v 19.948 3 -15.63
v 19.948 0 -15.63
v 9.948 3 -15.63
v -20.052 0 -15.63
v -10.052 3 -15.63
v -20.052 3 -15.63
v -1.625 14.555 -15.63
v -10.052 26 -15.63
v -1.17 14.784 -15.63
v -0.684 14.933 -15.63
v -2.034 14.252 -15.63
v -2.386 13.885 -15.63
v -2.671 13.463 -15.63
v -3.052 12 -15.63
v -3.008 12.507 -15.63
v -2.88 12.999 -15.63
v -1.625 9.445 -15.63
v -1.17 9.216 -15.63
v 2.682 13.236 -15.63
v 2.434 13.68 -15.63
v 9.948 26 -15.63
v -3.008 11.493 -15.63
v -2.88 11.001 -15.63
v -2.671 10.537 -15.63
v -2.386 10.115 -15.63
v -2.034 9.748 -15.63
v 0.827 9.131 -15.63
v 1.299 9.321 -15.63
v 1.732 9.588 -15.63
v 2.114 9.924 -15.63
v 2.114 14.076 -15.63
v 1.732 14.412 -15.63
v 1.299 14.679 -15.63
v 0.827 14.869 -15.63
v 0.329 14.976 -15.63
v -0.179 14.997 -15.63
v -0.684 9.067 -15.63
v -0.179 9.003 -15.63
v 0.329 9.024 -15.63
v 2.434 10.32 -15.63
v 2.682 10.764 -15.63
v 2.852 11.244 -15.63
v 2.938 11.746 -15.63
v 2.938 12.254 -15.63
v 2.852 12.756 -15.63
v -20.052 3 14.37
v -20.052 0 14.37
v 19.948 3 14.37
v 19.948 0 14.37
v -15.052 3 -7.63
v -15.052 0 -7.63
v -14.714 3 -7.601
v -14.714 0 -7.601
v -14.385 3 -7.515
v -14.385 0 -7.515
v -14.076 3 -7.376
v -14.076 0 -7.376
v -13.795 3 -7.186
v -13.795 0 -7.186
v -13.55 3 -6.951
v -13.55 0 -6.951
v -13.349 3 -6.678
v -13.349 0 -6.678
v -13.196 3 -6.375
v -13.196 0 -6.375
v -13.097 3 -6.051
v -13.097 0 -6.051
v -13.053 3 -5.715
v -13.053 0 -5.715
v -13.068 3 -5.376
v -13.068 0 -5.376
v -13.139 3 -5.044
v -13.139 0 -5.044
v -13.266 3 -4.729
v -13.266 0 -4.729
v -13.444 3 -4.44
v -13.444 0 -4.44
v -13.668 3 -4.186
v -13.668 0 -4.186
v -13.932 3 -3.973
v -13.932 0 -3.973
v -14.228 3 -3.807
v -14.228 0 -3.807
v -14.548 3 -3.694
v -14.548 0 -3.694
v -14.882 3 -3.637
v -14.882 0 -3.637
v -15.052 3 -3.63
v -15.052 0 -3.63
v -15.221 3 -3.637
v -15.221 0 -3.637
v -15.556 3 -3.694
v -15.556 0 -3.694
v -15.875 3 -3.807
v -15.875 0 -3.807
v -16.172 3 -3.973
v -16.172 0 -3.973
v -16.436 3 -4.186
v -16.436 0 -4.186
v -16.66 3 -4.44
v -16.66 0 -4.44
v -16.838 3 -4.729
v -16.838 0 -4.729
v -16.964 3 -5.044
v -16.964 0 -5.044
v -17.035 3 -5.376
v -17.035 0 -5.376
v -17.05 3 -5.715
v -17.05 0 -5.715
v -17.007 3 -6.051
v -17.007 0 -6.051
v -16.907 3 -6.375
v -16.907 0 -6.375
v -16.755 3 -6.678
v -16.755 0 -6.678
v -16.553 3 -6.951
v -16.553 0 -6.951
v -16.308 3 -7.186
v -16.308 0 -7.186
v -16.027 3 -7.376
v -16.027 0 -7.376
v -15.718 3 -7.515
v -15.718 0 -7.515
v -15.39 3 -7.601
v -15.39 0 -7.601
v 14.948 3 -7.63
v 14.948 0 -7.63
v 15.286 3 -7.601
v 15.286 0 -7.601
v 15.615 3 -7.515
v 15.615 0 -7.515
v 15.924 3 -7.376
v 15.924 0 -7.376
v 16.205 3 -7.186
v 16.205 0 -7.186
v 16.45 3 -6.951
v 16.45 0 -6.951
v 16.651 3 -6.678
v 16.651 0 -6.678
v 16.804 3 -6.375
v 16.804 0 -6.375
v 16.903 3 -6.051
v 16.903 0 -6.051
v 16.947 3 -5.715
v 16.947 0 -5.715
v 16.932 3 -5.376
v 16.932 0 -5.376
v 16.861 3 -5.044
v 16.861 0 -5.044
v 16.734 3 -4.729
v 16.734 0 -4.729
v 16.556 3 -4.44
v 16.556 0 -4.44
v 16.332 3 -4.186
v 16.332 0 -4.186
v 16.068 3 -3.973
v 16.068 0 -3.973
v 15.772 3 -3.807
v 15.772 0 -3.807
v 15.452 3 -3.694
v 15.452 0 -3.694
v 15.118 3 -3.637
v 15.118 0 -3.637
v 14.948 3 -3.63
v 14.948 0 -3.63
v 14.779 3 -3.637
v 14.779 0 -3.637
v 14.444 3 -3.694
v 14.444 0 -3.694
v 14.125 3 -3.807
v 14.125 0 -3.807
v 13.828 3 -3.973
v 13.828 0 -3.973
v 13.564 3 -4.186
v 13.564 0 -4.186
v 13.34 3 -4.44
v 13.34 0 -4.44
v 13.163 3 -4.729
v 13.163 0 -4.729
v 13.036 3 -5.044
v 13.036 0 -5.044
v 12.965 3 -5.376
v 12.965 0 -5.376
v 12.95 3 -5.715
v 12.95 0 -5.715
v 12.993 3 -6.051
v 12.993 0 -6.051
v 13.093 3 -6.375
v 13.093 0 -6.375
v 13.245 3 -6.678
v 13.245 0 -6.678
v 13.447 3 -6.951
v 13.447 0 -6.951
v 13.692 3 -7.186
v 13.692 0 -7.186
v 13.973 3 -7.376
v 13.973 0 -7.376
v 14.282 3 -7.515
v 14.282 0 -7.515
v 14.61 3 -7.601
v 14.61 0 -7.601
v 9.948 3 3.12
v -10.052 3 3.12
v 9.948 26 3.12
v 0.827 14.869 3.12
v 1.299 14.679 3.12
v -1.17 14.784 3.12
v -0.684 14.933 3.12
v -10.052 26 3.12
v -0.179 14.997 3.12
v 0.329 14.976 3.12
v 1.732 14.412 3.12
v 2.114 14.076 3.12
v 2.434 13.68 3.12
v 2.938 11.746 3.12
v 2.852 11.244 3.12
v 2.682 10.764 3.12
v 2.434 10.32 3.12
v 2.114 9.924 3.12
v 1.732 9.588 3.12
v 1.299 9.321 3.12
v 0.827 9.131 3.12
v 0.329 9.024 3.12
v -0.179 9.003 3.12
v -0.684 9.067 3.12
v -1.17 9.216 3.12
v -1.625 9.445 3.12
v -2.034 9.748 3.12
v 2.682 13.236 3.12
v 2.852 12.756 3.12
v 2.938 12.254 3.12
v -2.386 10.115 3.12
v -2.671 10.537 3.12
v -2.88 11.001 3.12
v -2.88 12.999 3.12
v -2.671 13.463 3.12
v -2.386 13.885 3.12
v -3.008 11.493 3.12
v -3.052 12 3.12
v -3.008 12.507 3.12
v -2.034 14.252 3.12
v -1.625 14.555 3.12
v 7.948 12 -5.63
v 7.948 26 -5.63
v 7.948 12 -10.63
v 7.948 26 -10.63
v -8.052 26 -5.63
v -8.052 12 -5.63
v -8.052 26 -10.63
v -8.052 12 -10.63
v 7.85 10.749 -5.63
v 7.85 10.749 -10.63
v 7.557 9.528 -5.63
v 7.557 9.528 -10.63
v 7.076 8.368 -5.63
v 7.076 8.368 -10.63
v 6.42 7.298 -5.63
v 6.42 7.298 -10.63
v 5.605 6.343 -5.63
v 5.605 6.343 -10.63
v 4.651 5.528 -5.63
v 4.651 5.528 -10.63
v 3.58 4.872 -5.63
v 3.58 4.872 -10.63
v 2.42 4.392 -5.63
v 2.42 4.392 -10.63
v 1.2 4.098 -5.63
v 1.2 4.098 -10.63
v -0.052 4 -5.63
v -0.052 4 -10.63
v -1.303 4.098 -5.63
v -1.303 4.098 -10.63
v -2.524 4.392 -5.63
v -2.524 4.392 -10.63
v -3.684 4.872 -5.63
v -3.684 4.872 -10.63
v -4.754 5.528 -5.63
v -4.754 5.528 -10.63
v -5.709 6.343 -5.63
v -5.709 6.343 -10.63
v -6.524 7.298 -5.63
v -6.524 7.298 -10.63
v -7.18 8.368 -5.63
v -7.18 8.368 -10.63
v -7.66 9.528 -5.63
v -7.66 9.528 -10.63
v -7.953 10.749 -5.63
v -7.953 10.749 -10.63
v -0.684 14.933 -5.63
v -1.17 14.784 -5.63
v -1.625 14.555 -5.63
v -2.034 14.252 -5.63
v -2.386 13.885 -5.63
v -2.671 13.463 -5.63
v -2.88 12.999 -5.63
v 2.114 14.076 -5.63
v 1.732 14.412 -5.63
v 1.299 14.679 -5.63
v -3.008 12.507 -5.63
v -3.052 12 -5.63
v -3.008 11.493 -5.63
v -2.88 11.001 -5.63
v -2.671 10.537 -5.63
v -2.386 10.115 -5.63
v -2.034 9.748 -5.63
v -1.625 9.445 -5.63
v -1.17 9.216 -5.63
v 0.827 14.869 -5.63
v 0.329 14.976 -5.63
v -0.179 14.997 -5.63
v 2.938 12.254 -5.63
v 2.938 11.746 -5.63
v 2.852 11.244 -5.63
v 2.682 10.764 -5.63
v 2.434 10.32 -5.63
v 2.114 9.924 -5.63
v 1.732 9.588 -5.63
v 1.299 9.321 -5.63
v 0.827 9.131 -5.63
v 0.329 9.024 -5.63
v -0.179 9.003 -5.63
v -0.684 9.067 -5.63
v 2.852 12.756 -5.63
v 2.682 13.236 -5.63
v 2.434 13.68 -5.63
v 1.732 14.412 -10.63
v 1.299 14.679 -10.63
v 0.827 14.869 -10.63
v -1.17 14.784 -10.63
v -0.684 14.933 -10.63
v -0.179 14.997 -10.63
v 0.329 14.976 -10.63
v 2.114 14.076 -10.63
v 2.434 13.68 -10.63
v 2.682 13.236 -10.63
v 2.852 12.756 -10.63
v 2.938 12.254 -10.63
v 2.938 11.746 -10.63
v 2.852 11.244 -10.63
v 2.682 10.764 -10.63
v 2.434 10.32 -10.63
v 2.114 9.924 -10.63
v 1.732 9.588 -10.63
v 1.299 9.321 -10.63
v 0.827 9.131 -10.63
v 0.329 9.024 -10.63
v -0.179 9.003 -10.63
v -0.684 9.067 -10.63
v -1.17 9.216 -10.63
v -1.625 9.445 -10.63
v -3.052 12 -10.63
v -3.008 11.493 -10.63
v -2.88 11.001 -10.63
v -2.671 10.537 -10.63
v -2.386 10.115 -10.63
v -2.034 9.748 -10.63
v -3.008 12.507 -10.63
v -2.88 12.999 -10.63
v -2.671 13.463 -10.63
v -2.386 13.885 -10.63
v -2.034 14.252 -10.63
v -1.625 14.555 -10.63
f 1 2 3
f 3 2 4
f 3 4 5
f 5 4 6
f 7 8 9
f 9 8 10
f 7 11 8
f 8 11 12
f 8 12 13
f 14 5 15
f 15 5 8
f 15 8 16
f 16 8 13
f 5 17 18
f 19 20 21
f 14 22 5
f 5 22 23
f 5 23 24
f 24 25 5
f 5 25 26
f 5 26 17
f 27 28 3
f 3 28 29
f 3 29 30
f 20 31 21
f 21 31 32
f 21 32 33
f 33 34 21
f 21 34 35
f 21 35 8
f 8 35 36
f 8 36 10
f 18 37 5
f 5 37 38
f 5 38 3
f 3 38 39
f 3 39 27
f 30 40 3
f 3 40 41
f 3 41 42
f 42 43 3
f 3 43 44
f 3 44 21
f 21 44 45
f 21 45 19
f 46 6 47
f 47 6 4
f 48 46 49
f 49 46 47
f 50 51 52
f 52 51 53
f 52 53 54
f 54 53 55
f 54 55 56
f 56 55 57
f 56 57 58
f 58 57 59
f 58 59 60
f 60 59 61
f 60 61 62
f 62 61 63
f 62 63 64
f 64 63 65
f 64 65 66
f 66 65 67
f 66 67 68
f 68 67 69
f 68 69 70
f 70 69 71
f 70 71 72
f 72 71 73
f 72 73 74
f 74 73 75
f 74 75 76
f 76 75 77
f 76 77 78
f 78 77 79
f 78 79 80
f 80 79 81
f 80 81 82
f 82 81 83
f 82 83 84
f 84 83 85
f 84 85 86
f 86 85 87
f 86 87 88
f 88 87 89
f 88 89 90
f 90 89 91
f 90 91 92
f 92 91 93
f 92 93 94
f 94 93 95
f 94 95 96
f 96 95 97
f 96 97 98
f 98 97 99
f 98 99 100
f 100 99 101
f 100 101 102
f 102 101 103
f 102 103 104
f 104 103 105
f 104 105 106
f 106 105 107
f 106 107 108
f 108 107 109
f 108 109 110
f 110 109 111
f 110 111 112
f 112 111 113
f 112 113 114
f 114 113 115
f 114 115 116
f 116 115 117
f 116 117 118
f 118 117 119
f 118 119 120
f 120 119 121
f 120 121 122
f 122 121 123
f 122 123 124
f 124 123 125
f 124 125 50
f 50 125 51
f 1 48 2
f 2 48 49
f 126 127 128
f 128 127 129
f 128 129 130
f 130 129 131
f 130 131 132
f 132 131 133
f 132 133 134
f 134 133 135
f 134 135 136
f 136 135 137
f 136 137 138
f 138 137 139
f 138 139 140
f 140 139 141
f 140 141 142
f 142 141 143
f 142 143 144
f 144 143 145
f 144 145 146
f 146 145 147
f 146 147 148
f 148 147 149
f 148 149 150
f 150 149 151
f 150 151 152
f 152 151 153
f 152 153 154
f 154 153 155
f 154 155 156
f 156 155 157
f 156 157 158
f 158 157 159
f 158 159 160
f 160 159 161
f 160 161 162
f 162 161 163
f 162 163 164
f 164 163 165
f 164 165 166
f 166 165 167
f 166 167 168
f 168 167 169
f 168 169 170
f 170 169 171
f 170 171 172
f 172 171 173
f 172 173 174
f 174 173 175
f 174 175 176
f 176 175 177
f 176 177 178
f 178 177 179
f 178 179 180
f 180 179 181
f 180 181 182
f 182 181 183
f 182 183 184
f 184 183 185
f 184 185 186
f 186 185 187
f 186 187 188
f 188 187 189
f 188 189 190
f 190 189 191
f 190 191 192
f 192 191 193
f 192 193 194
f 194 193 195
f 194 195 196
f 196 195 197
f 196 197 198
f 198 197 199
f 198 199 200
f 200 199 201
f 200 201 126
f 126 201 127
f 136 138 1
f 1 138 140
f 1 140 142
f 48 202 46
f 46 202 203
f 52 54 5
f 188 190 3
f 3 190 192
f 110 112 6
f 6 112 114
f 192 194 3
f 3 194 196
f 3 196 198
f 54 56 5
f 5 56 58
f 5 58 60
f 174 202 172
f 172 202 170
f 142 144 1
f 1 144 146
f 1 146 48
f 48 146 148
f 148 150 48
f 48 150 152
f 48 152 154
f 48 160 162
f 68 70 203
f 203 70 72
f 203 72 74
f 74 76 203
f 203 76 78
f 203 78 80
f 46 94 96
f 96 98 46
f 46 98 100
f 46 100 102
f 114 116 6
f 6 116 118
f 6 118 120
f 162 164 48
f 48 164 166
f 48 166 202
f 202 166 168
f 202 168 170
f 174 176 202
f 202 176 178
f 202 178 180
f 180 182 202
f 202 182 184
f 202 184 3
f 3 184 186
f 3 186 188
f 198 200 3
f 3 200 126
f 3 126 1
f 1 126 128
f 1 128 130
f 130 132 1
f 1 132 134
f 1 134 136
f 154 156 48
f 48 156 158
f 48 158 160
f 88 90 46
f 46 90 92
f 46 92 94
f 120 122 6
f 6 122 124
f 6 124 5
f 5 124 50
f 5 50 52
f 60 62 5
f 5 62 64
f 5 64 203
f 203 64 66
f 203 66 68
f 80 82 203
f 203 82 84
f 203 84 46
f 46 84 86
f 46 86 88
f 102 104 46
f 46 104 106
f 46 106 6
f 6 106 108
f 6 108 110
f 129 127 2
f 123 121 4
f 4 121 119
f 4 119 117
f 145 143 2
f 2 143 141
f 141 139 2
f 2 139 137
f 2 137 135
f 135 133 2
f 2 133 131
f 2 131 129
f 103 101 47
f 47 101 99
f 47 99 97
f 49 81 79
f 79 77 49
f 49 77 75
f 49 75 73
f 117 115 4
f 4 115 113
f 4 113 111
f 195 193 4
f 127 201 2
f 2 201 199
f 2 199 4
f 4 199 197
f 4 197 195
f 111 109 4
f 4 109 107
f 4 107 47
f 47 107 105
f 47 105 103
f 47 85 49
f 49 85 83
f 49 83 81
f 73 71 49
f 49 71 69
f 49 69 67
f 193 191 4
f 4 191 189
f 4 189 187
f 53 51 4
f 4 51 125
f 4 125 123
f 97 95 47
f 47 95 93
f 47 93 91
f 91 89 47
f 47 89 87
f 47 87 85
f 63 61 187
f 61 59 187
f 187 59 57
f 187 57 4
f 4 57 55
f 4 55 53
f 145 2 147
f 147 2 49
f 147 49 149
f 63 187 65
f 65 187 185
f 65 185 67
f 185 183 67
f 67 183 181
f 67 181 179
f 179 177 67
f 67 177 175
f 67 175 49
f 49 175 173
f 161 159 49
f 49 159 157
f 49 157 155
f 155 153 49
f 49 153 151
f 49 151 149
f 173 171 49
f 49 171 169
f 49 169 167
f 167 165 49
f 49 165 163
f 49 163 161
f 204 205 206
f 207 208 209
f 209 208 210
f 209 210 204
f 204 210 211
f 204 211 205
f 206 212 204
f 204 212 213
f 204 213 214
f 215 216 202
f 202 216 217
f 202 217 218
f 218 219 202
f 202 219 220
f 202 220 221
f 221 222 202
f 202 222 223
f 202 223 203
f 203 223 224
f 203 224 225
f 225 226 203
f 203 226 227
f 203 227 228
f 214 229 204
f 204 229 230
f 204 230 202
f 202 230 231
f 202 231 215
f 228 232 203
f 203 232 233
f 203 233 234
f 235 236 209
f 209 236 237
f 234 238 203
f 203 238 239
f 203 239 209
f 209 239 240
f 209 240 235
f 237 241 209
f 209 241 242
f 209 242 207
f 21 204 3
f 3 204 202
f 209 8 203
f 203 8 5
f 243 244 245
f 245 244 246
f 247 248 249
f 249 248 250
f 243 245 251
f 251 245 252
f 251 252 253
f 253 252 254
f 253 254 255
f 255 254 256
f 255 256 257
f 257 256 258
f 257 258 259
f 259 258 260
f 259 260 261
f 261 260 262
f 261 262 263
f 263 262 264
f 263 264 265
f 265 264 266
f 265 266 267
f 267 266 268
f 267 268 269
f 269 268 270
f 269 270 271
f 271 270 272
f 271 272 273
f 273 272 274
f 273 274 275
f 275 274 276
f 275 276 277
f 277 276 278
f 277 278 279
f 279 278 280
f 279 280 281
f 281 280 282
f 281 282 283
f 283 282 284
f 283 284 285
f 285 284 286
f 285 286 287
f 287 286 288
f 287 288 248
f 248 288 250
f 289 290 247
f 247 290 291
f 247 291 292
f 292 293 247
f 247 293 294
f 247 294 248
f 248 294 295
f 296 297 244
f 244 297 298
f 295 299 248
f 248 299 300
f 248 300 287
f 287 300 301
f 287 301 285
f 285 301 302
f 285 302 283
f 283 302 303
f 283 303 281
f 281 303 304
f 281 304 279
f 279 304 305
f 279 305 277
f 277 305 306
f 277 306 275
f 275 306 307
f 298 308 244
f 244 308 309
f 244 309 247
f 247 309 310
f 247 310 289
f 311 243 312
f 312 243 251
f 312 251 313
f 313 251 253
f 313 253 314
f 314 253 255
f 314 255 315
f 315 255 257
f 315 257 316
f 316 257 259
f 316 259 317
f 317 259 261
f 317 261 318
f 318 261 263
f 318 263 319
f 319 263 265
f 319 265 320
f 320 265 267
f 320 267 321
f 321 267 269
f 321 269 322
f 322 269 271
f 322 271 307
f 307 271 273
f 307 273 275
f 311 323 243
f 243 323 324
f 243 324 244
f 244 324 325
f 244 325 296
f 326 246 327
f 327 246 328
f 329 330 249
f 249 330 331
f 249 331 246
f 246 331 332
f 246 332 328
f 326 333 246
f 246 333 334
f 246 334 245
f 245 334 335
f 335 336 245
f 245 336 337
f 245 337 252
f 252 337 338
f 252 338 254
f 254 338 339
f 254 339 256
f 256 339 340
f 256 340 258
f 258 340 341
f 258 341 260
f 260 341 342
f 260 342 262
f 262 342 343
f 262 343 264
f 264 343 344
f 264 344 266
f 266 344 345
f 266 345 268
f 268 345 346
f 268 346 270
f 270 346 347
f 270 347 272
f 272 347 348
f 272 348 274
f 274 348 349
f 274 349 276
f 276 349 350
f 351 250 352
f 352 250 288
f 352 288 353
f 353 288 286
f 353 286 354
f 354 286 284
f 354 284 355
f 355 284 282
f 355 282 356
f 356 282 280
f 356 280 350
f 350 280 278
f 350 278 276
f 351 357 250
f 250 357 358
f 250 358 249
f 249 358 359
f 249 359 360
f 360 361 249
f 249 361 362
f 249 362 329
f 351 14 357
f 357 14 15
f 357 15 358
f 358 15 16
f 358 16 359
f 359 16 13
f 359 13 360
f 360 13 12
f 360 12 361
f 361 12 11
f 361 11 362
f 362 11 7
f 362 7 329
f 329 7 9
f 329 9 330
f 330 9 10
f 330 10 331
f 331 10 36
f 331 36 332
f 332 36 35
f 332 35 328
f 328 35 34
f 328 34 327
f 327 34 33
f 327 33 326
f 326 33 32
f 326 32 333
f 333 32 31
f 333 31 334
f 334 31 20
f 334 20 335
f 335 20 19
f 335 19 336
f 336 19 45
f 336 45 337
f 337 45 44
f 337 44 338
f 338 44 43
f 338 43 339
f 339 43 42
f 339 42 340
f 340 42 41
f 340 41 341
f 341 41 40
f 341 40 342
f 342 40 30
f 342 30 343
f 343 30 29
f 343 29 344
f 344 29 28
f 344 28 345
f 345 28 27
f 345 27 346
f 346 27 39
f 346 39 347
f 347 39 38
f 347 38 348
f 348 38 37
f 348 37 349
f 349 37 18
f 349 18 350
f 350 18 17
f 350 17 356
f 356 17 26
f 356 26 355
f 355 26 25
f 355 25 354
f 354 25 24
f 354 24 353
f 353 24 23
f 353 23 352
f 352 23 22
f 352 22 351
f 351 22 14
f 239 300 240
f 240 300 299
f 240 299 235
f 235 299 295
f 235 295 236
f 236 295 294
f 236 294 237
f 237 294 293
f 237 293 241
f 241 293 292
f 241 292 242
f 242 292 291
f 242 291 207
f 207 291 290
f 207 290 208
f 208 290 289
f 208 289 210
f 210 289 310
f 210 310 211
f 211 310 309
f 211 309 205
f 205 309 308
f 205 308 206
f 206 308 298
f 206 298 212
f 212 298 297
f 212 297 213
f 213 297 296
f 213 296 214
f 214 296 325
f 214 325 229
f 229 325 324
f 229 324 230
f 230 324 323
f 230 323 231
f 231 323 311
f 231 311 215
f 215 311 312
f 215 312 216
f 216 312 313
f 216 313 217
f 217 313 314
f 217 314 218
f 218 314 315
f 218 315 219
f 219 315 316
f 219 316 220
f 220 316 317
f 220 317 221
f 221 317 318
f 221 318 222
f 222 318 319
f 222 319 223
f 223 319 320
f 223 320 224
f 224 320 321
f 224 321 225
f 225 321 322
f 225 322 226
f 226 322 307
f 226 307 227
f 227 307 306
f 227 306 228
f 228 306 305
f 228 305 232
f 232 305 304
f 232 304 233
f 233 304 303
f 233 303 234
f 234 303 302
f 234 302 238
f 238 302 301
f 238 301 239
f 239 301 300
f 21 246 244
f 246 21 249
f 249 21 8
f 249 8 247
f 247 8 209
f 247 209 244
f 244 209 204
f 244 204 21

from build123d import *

# Parameters (mm, degrees)
ESQUISSE3_W             = 10
ESQUISSE3_H             = 15
ESQUISSE3_H_2           = 10
ESQUISSE3_H_3           = 5
BOSS_EXTRU_1_DEPTH      = 3
ESQUISSE4_W             = 10
ESQUISSE4_H             = 5
ESQUISSE4_H_2           = 3.75
BOSS_EXTRU_2_DEPTH      = 17
ENL_V_MAT_EXTRU_1_DEPTH = 5
ENL_V_MAT_EXTRU_2_DEPTH = 18.75
ESQUISSE8_W             = 20
ESQUISSE8_H             = 18.75
ESQUISSE8_W_2           = 16
ESQUISSE8_H_2           = 5
BOSS_EXTRU_3_DEPTH      = 6


with BuildPart() as part:
    # Esquisse3 → Boss.-Extru.1 (new body)
    with BuildSketch(Plane(origin=(0, 0, 0), x_dir=(1, 0, 0), z_dir=(0, 1, 0))):
        with Locations((-15.05164944, -6.870348765)):
            Rectangle(ESQUISSE3_W, ESQUISSE3_H)
        with Locations((14.94835056, -6.870348765)):
            Rectangle(ESQUISSE3_W, ESQUISSE3_H)
        with BuildLine():
            Line((-10.05164944, 5.629651235), (-10.05164944, 15.629651235))
            Line((-10.05164944, 15.629651235), (-20.05164944, 15.629651235))
            Line((-20.05164944, 15.629651235), (-20.05164944, 5.629651235))
            Line((-20.05164944, 5.629651235), (-17.05164944, 5.629651235))
            ThreePointArc((-17.05164944, 5.629651235), (-15.05164944, 7.629651235), (-13.05164944, 5.629651235))
            Line((-13.05164944, 5.629651235), (-10.05164944, 5.629651235))
        make_face()
        with BuildLine():
            Line((-10.05164944, 0.629651235), (-10.05164944, 5.629651235))
            Line((-10.05164944, 5.629651235), (-13.05164944, 5.629651235))
            ThreePointArc((-13.05164944, 5.629651235), (-15.05164944, 3.629651235), (-17.05164944, 5.629651235))
            Line((-17.05164944, 5.629651235), (-20.05164944, 5.629651235))
            Line((-20.05164944, 5.629651235), (-20.05164944, 0.629651235))
            Line((-20.05164944, 0.629651235), (-10.05164944, 0.629651235))
        make_face()
        with Locations((-5.05164944, 10.629651235)):
            Rectangle(ESQUISSE3_W, ESQUISSE3_H_2)
        with Locations((4.94835056, 10.629651235)):
            Rectangle(ESQUISSE3_W, ESQUISSE3_H_2)
        with BuildLine():
            Line((19.94835056, 15.629651235), (9.94835056, 15.629651235))
            Line((9.94835056, 15.629651235), (9.94835056, 5.629651235))
            Line((9.94835056, 5.629651235), (12.94835056, 5.629651235))
            ThreePointArc((12.94835056, 5.629651235), (14.94835056, 7.629651235), (16.94835056, 5.629651235))
            Line((16.94835056, 5.629651235), (19.94835056, 5.629651235))
            Line((19.94835056, 5.629651235), (19.94835056, 15.629651235))
        make_face()
        with BuildLine():
            Line((12.94835056, 5.629651235), (9.94835056, 5.629651235))
            Line((9.94835056, 5.629651235), (9.94835056, 0.629651235))
            Line((9.94835056, 0.629651235), (19.94835056, 0.629651235))
            Line((19.94835056, 0.629651235), (19.94835056, 5.629651235))
            Line((19.94835056, 5.629651235), (16.94835056, 5.629651235))
            ThreePointArc((16.94835056, 5.629651235), (14.94835056, 3.629651235), (12.94835056, 5.629651235))
        make_face()
        with Locations((4.94835056, -6.870348765)):
            Rectangle(ESQUISSE3_W, ESQUISSE3_H)
        with Locations((-5.05164944, -6.870348765)):
            Rectangle(ESQUISSE3_W, ESQUISSE3_H)
        with Locations((4.94835056, 3.129651235)):
            Rectangle(ESQUISSE3_W, ESQUISSE3_H_3)
        with Locations((-5.05164944, 3.129651235)):
            Rectangle(ESQUISSE3_W, ESQUISSE3_H_3)
    extrude(amount=BOSS_EXTRU_1_DEPTH)

    # Esquisse4 → Boss.-Extru.2 (add)
    with BuildSketch(Plane(origin=(0, 3, 0), x_dir=(1, 0, 0), z_dir=(0, 1, 0))):
        with Locations((-5.05164944, 3.129651235)):
            Rectangle(ESQUISSE4_W, ESQUISSE4_H)
        with Locations((-5.05164944, -1.245348765)):
            Rectangle(ESQUISSE4_W, ESQUISSE4_H_2)
        with Locations((4.94835056, -1.245348765)):
            Rectangle(ESQUISSE4_W, ESQUISSE4_H_2)
        with Locations((4.94835056, 3.129651235)):
            Rectangle(ESQUISSE4_W, ESQUISSE4_H)
        Polygon((-0.05164944, 15.629651235), (-0.05164944, 5.629651235), (9.94835056, 5.629651235), (9.94835056, 8.129651235), align=None)
        Polygon((-10.05164944, 8.129651235), (-10.05164944, 5.629651235), (-0.05164944, 5.629651235), (-0.05164944, 15.629651235), align=None)
        Polygon((-10.05164944, 15.629651235), (-10.05164944, 8.129651235), (-0.05164944, 15.629651235), align=None)
        Polygon((9.94835056, 15.629651235), (-0.05164944, 15.629651235), (9.94835056, 8.129651235), align=None)
    extrude(amount=BOSS_EXTRU_2_DEPTH)

    # Esquisse6 → Enlèv. mat.-Extru.1 (cut)
    with BuildSketch(Plane(origin=(0, 0, -10.629651235), x_dir=(-1, 0, 0), z_dir=(0, 0, -1))):
        with BuildLine():
            Line((8.05164944, 20), (-7.94835056, 20))
            Line((-7.94835056, 20), (-7.94835056, 12))
            ThreePointArc((-7.94835056, 12), (0.05164944, 4), (8.05164944, 12))
            Line((8.05164944, 12), (8.05164944, 20))
        make_face()
    extrude(amount=-ENL_V_MAT_EXTRU_1_DEPTH, mode=Mode.SUBTRACT)

    # Esquisse7 → Enlèv. mat.-Extru.2 (cut)
    with BuildSketch(Plane(origin=(0, 0, -15.629651235), x_dir=(-1, 0, 0), z_dir=(0, 0, -1))):
        with BuildLine():
            ThreePointArc((3.05164944, 12), (2.823288037, 13.148050297), (2.172969783, 14.121320344))
            Line((2.172969783, 14.121320344), (0.05164944, 12))
            Line((0.05164944, 12), (2.172969783, 9.878679656))
            ThreePointArc((2.172969783, 9.878679656), (2.823288037, 10.851949703), (3.05164944, 12))
        make_face()
        with BuildLine():
            Line((0.05164944, 12), (2.172969783, 14.121320344))
            ThreePointArc((2.172969783, 14.121320344), (0.05164944, 15), (-2.069670904, 14.121320344))
            Line((-2.069670904, 14.121320344), (0.05164944, 12))
        make_face()
        with BuildLine():
            ThreePointArc((-2.069670904, 9.878679656), (0.05164944, 9), (2.172969783, 9.878679656))
            Line((2.172969783, 9.878679656), (0.05164944, 12))
            Line((0.05164944, 12), (-2.069670904, 9.878679656))
        make_face()
        with BuildLine():
            Line((0.05164944, 12), (-2.069670904, 14.121320344))
            ThreePointArc((-2.069670904, 14.121320344), (-2.94835056, 12), (-2.069670904, 9.878679656))
            Line((-2.069670904, 9.878679656), (0.05164944, 12))
        make_face()
    extrude(amount=-ENL_V_MAT_EXTRU_2_DEPTH, mode=Mode.SUBTRACT)

    # Esquisse8 → Boss.-Extru.3 (add)
    with BuildSketch(Plane(origin=(0, 20, 0), x_dir=(1, 0, 0), z_dir=(0, 1, 0))):
        with Locations((-0.05164944, 6.254651235)):
            Rectangle(ESQUISSE8_W, ESQUISSE8_H)
        with Locations((-0.05164944, 8.129651235)):
            Rectangle(ESQUISSE8_W_2, ESQUISSE8_H_2, mode=Mode.SUBTRACT)
    extrude(amount=BOSS_EXTRU_3_DEPTH)


solid = part.part
